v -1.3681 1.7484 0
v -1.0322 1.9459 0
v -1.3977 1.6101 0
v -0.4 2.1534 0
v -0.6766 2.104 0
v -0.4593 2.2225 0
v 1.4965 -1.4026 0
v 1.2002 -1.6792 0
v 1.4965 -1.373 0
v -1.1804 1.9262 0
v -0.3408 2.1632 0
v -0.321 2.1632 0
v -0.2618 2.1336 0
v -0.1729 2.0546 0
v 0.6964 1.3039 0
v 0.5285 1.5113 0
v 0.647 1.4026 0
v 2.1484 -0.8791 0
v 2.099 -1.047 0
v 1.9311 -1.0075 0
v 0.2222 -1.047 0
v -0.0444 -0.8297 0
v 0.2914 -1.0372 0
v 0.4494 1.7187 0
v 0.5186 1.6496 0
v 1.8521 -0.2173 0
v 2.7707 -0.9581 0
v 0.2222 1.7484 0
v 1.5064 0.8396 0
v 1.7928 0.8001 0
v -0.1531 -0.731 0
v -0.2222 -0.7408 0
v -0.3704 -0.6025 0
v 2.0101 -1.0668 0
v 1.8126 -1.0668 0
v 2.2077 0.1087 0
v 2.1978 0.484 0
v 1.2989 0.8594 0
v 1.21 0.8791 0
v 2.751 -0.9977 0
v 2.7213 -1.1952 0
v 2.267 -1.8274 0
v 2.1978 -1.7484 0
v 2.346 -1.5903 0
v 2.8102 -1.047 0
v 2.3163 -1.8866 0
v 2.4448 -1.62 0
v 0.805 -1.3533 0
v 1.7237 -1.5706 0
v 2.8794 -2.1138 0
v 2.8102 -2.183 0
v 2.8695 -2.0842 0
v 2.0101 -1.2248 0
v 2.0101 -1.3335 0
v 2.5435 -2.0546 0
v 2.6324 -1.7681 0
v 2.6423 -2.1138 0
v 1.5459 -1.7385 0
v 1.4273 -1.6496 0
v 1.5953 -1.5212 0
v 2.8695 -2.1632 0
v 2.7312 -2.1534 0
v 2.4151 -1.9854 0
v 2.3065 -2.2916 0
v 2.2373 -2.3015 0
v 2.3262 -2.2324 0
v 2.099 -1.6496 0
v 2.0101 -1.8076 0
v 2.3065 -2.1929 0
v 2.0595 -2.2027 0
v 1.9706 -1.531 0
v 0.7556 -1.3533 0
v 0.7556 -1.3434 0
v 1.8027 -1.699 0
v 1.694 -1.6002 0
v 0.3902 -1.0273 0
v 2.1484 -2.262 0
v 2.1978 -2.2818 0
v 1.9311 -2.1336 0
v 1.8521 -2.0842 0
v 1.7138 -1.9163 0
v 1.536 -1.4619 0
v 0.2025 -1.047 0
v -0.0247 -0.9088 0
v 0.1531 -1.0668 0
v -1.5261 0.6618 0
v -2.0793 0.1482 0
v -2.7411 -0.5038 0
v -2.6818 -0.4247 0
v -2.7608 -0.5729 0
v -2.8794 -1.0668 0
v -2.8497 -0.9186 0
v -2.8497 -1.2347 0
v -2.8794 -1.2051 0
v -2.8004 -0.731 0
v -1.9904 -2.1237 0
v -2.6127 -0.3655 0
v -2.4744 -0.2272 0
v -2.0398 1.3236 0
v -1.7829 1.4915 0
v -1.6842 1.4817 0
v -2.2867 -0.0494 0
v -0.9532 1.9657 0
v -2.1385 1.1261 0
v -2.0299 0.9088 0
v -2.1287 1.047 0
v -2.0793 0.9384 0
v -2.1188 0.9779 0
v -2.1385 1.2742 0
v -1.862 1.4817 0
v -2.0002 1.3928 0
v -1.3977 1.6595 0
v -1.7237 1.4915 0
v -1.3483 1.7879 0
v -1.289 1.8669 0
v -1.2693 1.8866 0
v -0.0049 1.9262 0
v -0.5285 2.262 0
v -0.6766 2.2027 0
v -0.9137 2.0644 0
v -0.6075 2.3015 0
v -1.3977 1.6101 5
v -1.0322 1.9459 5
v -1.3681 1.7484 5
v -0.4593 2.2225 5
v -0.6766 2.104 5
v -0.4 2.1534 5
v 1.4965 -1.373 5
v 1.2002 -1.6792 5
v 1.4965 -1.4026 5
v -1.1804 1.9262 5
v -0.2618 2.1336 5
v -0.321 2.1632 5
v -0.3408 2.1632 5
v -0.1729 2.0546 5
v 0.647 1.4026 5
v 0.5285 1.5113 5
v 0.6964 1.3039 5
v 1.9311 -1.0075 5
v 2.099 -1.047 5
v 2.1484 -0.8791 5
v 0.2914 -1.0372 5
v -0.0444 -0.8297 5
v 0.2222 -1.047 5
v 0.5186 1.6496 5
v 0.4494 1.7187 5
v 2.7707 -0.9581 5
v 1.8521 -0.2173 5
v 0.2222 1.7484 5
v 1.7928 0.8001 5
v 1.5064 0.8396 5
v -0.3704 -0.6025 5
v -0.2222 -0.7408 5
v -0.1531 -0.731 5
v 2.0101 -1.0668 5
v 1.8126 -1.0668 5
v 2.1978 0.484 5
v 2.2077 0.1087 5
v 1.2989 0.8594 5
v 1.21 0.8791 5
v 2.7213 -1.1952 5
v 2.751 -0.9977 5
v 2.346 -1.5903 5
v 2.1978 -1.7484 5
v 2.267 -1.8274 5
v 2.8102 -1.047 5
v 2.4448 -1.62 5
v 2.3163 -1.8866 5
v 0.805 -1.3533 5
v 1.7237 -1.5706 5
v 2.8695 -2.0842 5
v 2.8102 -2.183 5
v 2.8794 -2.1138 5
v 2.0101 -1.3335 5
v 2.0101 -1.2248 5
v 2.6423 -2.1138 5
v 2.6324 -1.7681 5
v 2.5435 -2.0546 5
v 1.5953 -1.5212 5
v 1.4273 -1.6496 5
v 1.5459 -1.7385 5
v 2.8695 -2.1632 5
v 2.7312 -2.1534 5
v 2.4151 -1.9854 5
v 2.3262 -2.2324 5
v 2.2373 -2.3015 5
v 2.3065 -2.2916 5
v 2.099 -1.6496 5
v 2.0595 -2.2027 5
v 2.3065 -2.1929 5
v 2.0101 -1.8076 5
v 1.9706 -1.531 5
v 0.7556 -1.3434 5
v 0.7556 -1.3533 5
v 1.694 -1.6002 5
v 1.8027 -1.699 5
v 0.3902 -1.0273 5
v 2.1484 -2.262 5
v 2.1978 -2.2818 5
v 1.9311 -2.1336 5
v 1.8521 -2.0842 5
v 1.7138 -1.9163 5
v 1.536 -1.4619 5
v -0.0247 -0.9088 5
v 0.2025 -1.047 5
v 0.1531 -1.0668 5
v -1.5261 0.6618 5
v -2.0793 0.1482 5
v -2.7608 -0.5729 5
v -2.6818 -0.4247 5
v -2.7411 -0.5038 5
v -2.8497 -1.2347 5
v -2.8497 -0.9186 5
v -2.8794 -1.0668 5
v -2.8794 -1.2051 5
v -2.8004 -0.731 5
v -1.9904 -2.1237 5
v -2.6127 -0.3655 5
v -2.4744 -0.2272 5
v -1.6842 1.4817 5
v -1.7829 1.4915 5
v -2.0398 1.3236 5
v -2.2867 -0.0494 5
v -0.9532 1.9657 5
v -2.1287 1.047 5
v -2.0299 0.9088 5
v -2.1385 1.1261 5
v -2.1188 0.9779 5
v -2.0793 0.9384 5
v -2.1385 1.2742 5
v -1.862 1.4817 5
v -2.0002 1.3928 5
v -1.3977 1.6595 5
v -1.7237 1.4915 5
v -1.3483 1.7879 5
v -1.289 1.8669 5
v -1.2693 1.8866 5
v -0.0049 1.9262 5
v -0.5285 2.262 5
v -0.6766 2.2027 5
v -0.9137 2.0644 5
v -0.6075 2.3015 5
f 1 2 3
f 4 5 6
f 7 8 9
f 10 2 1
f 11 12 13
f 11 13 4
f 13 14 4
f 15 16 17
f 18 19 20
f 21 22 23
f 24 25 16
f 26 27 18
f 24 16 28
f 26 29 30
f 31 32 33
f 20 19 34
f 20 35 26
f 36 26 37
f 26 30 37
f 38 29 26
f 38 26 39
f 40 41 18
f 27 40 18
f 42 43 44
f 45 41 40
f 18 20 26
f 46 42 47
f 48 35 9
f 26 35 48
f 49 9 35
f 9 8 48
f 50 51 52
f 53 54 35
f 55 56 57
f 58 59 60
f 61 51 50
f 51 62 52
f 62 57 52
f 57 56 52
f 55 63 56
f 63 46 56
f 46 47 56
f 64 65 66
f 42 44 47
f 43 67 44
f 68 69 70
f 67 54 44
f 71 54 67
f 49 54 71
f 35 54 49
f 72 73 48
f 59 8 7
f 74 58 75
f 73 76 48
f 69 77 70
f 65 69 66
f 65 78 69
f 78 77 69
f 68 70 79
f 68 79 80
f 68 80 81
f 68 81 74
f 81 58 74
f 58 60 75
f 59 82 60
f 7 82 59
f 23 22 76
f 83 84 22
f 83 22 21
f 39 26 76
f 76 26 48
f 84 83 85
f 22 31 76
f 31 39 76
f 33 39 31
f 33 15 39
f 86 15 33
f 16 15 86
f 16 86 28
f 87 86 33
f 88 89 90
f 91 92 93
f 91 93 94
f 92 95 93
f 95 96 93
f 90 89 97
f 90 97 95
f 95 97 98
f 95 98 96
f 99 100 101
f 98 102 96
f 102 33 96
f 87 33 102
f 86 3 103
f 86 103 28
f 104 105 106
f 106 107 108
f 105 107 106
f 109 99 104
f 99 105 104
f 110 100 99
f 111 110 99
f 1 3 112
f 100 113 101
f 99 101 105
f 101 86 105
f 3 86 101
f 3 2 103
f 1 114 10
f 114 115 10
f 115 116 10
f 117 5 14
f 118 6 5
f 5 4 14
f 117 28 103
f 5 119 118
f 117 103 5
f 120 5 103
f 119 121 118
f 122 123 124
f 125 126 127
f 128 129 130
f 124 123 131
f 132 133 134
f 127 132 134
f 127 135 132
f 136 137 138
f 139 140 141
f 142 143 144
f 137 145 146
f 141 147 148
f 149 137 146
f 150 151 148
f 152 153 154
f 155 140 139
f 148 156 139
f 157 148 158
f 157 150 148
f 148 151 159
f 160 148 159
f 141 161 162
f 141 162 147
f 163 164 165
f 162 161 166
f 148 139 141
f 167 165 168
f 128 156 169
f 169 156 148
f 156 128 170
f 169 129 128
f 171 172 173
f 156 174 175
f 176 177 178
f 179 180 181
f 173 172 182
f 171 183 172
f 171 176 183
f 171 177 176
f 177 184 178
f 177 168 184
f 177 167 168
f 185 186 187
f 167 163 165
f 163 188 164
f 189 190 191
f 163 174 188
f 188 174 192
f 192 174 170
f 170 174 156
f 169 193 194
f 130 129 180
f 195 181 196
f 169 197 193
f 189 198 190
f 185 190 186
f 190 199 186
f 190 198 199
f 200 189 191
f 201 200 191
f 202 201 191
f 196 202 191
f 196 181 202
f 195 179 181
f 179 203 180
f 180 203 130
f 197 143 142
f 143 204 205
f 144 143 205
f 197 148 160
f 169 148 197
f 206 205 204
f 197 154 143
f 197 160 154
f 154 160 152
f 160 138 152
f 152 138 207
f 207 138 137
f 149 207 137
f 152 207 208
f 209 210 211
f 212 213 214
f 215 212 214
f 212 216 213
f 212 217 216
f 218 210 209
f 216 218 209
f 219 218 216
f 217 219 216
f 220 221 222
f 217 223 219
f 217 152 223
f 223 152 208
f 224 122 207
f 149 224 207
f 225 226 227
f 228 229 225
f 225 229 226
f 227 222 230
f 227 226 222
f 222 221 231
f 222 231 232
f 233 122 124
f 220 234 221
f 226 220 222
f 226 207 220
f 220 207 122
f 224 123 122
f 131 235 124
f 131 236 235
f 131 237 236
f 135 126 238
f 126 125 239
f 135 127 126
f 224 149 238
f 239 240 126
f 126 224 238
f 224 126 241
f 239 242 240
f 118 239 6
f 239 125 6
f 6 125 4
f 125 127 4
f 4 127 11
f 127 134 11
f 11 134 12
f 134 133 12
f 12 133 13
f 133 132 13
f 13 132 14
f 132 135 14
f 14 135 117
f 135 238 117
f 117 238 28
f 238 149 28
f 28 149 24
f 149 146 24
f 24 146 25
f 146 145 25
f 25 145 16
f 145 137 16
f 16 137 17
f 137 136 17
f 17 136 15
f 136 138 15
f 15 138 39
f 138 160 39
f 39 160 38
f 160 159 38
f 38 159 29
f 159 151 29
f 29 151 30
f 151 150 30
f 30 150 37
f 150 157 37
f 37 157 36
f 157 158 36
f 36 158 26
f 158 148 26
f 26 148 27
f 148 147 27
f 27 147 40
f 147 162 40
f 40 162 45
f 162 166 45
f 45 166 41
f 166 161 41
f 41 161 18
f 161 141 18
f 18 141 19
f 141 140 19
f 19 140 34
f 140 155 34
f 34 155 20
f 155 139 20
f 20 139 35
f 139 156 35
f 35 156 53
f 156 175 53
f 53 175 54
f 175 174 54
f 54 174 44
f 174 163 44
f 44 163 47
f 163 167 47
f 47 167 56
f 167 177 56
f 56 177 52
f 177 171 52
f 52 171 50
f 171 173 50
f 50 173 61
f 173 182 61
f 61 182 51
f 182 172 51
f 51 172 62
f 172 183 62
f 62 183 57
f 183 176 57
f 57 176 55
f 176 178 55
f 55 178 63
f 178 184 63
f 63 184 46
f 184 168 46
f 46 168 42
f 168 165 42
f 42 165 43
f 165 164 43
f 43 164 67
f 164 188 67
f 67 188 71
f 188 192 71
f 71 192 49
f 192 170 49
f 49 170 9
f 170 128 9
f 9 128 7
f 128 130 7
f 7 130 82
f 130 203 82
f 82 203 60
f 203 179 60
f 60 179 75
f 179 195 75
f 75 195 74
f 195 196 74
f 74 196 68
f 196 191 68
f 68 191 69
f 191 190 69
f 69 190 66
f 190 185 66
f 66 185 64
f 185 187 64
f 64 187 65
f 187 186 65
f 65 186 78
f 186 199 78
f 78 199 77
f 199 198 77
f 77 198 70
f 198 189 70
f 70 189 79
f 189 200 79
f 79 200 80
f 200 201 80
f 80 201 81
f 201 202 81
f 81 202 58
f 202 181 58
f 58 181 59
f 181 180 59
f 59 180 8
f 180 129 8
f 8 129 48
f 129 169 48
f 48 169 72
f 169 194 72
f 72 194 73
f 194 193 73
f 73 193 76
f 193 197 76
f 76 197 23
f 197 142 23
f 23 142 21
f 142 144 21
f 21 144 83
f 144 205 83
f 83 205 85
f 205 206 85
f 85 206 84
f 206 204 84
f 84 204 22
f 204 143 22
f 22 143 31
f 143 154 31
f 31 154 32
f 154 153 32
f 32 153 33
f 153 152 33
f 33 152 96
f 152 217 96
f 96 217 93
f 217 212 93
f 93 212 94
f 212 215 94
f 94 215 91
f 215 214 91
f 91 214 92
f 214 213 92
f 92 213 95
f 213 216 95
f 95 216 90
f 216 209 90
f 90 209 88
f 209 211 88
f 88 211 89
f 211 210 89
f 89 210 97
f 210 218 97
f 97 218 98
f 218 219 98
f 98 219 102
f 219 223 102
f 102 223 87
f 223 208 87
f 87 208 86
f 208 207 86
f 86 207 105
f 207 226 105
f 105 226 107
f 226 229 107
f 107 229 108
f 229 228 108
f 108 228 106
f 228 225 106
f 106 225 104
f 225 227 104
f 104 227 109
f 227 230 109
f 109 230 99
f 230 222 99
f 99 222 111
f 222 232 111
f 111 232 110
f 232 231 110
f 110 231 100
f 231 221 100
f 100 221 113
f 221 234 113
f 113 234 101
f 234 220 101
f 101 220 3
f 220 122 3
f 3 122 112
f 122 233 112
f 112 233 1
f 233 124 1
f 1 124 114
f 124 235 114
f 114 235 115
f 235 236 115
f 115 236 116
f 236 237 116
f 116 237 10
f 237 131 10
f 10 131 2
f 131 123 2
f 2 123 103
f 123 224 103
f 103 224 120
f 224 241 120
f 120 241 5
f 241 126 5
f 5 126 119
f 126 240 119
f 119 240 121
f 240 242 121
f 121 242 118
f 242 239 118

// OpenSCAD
// Module names are of the form poly_<inkscape-path-id>().  As a result,
// you can associate a polygon in this OpenSCAD program with the corresponding
// SVG element in the Inkscape document by looking for the XML element with
// the attribute id="inkscape-path-id".

// fudge value is used to ensure that subtracted solids are a tad taller
// in the z dimension than the polygon being subtracted from.  This helps
// keep the resulting .stl file manifold.
fudge = 0.1;

module poly_path4222(h)
{
  scale([25.4/90, -25.4/90, 1]) union()
  {
    linear_extrude(height=h)
      polygon([[4.287500,-3.115000],[4.602500,-3.045000],[5.337500,-2.975000],[6.352500,-2.835000],[7.787500,-1.715000],[7.822500,-0.385000],[6.562500,0.770000],[9.817500,3.395000],[9.747500,3.535000],[9.957500,3.710000],[9.642500,4.235000],[7.612500,3.115000],[7.437500,3.710000],[7.122500,3.780000],[6.842500,3.570000],[6.422500,3.780000],[7.122500,4.340000],[7.122500,4.725000],[8.312500,5.635000],[8.662500,5.740000],[9.327500,6.265000],[10.167500,7.385000],[10.202500,7.490000],[10.167500,7.665000],[9.957500,7.735000],[9.677500,7.630000],[9.362500,7.490000],[9.012500,7.280000],[8.557500,7.035000],[8.382500,6.860000],[8.207500,6.685000],[8.032500,6.475000],[7.787500,6.195000],[7.437500,5.845000],[6.982500,5.425000],[6.107500,5.565000],[5.302500,4.865000],[5.302500,4.970000],[5.442500,5.180000],[5.652500,5.390000],[6.002500,5.670000],[6.387500,6.020000],[7.122500,6.405000],[8.172500,7.770000],[8.242500,7.910000],[8.172500,8.120000],[7.927500,8.155000],[7.787500,8.085000],[7.612500,8.015000],[7.297500,7.805000],[6.842500,7.560000],[6.562500,7.385000],[6.072500,6.790000],[5.477500,6.160000],[5.057500,5.845000],[4.252500,5.950000],[2.852500,4.795000],[2.747500,4.795000],[2.677500,4.795000],[2.677500,4.760000],[1.382500,3.640000],[1.032500,3.675000],[0.787500,3.710000],[0.717500,3.710000],[0.542500,3.780000],[-0.087500,3.220000],[-0.157500,2.940000],[-0.542500,2.590000],[-0.787500,2.625000],[-1.312500,2.135000],[-7.052500,7.525000],[-10.097500,4.375000],[-10.202500,4.270000],[-10.202500,3.780000],[-10.097500,3.255000],[-9.922500,2.590000],[-9.782500,2.030000],[-9.712500,1.785000],[-9.712500,1.785000],[-9.502500,1.505000],[-9.257500,1.295000],[-8.767500,0.805000],[-8.102500,0.175000],[-7.367500,-0.525000],[-5.407500,-2.345000],[-7.192500,-3.220000],[-7.367500,-3.325000],[-7.507500,-3.465000],[-7.542500,-3.710000],[-7.577500,-3.990000],[-7.577500,-4.270000],[-7.577500,-4.515000],[-7.227500,-4.690000],[-7.087500,-4.935000],[-6.597500,-5.250000],[-6.317500,-5.285000],[-6.107500,-5.285000],[-5.967500,-5.250000],[-4.952500,-5.705000],[-4.952500,-5.880000],[-4.847500,-6.195000],[-4.777500,-6.335000],[-4.672500,-6.475000],[-4.567500,-6.615000],[-4.497500,-6.685000],[-4.182500,-6.825000],[-3.657500,-6.895000],[-3.377500,-6.965000],[-3.237500,-7.315000],[-2.397500,-7.455000],[-2.397500,-7.805000],[-2.152500,-8.155000],[-1.872500,-8.015000],[-1.627500,-7.875000],[-1.417500,-7.630000],[-1.207500,-7.665000],[-1.137500,-7.665000],[-0.927500,-7.560000],[-0.612500,-7.280000],[-0.017500,-6.825000],[0.787500,-6.195000],[1.592500,-6.090000],[1.837500,-5.845000],[1.872500,-5.355000],[2.292500,-4.970000],[2.467500,-4.620000],[4.287500,-3.115000]]);
  }
}

poly_path4222(5);
